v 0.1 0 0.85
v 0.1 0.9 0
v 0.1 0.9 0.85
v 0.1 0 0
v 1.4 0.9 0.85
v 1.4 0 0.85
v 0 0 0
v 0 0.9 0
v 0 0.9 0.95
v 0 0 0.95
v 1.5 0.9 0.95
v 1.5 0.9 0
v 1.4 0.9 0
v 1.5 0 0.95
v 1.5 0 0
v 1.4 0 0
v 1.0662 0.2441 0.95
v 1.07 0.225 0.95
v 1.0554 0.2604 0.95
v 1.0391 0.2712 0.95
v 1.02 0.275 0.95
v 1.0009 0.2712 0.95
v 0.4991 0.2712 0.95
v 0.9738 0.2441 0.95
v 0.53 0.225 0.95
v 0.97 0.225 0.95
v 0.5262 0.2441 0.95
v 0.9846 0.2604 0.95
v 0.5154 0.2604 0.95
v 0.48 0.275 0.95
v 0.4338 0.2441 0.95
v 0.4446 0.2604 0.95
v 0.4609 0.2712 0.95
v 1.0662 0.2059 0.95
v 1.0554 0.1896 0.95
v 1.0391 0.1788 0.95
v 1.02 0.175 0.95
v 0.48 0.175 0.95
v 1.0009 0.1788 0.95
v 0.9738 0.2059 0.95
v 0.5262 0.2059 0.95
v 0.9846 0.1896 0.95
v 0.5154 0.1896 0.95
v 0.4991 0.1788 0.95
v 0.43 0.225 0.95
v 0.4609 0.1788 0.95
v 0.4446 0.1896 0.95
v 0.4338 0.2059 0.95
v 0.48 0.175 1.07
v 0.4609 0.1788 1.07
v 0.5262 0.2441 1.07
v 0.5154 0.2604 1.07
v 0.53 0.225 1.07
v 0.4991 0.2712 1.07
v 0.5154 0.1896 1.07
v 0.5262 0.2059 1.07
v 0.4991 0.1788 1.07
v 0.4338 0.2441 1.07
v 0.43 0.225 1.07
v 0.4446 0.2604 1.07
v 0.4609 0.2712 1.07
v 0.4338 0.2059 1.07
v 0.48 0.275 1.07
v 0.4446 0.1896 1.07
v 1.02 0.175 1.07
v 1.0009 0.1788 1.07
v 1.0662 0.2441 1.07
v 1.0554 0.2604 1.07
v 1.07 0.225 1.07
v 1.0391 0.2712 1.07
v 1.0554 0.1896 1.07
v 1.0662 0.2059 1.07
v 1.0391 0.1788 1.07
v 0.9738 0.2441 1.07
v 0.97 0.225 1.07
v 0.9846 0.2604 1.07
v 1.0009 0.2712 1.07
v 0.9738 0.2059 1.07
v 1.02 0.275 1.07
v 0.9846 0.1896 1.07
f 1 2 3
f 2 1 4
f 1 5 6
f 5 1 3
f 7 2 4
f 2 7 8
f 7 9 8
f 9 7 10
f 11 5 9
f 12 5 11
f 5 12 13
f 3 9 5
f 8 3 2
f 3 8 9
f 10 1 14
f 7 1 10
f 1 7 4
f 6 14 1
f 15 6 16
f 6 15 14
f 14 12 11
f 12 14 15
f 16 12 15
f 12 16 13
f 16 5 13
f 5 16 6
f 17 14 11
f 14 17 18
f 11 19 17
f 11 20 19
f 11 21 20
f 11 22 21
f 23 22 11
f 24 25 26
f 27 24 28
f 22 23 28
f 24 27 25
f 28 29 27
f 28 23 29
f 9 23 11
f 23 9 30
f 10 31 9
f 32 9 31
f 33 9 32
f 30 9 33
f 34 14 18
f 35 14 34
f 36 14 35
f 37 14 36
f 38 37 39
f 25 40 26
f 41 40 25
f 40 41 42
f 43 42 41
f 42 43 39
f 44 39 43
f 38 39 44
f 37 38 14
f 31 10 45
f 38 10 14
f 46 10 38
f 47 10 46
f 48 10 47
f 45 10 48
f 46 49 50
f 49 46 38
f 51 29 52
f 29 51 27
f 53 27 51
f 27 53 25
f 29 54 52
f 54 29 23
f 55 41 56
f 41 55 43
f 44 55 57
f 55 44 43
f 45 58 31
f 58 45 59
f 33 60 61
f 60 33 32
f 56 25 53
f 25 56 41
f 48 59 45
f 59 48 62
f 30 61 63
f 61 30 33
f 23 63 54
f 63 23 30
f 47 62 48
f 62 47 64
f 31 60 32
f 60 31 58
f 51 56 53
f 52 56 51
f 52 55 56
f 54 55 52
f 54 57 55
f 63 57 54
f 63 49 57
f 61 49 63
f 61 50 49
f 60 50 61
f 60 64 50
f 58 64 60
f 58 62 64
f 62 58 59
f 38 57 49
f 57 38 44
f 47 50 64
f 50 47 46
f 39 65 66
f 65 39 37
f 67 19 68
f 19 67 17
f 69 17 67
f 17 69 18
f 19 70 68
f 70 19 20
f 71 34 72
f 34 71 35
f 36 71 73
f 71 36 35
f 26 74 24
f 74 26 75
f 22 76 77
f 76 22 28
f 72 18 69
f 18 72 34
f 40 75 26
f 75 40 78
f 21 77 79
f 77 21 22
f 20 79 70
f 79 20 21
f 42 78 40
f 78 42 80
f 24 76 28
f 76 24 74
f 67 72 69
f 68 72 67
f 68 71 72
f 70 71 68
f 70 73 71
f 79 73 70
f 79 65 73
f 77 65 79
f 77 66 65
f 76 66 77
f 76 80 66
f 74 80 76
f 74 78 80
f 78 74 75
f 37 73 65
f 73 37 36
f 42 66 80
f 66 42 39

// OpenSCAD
// Parameters
leg_width = 0.10;           // Width of each leg
leg_depth = 0.90;           // Depth/thickness of each leg
leg_spacing = 1.3;         // Space between the two legs
table_height = 0.85;      // Height of the table top
top_thickness = 0.10;       // Thickness of the tabletop
pin_diameter = 0.10;       // Diameter of the alignment pins
pin_spacing = 0.54;        // Center-to-center spacing between pins
pin_height = 0.12;          // Height of alignment pins

// Build each leg
module leg(x_offset) {
    translate([x_offset, 0, 0])
        cube([leg_width, leg_depth, table_height]);
}

// Build tabletop
module tabletop() {
    translate([0, 0, table_height])
        cube([2 * leg_width + leg_spacing, leg_depth, top_thickness]);
}


// Build alignment pins on top
module pin(x_offset) {
    translate([x_offset, leg_depth * (1/4), table_height + top_thickness])
        cylinder(h = pin_height, d = pin_diameter, $fn = 16);
}


// Assemble standoff
union() {
    leg(0);
    leg(leg_width + leg_spacing);
    tabletop();

    // Pins, centered on tabletop
    pin((2 * leg_width + leg_spacing) / 2 - pin_spacing / 2);
    pin((2 * leg_width + leg_spacing) / 2 + pin_spacing / 2);
}
